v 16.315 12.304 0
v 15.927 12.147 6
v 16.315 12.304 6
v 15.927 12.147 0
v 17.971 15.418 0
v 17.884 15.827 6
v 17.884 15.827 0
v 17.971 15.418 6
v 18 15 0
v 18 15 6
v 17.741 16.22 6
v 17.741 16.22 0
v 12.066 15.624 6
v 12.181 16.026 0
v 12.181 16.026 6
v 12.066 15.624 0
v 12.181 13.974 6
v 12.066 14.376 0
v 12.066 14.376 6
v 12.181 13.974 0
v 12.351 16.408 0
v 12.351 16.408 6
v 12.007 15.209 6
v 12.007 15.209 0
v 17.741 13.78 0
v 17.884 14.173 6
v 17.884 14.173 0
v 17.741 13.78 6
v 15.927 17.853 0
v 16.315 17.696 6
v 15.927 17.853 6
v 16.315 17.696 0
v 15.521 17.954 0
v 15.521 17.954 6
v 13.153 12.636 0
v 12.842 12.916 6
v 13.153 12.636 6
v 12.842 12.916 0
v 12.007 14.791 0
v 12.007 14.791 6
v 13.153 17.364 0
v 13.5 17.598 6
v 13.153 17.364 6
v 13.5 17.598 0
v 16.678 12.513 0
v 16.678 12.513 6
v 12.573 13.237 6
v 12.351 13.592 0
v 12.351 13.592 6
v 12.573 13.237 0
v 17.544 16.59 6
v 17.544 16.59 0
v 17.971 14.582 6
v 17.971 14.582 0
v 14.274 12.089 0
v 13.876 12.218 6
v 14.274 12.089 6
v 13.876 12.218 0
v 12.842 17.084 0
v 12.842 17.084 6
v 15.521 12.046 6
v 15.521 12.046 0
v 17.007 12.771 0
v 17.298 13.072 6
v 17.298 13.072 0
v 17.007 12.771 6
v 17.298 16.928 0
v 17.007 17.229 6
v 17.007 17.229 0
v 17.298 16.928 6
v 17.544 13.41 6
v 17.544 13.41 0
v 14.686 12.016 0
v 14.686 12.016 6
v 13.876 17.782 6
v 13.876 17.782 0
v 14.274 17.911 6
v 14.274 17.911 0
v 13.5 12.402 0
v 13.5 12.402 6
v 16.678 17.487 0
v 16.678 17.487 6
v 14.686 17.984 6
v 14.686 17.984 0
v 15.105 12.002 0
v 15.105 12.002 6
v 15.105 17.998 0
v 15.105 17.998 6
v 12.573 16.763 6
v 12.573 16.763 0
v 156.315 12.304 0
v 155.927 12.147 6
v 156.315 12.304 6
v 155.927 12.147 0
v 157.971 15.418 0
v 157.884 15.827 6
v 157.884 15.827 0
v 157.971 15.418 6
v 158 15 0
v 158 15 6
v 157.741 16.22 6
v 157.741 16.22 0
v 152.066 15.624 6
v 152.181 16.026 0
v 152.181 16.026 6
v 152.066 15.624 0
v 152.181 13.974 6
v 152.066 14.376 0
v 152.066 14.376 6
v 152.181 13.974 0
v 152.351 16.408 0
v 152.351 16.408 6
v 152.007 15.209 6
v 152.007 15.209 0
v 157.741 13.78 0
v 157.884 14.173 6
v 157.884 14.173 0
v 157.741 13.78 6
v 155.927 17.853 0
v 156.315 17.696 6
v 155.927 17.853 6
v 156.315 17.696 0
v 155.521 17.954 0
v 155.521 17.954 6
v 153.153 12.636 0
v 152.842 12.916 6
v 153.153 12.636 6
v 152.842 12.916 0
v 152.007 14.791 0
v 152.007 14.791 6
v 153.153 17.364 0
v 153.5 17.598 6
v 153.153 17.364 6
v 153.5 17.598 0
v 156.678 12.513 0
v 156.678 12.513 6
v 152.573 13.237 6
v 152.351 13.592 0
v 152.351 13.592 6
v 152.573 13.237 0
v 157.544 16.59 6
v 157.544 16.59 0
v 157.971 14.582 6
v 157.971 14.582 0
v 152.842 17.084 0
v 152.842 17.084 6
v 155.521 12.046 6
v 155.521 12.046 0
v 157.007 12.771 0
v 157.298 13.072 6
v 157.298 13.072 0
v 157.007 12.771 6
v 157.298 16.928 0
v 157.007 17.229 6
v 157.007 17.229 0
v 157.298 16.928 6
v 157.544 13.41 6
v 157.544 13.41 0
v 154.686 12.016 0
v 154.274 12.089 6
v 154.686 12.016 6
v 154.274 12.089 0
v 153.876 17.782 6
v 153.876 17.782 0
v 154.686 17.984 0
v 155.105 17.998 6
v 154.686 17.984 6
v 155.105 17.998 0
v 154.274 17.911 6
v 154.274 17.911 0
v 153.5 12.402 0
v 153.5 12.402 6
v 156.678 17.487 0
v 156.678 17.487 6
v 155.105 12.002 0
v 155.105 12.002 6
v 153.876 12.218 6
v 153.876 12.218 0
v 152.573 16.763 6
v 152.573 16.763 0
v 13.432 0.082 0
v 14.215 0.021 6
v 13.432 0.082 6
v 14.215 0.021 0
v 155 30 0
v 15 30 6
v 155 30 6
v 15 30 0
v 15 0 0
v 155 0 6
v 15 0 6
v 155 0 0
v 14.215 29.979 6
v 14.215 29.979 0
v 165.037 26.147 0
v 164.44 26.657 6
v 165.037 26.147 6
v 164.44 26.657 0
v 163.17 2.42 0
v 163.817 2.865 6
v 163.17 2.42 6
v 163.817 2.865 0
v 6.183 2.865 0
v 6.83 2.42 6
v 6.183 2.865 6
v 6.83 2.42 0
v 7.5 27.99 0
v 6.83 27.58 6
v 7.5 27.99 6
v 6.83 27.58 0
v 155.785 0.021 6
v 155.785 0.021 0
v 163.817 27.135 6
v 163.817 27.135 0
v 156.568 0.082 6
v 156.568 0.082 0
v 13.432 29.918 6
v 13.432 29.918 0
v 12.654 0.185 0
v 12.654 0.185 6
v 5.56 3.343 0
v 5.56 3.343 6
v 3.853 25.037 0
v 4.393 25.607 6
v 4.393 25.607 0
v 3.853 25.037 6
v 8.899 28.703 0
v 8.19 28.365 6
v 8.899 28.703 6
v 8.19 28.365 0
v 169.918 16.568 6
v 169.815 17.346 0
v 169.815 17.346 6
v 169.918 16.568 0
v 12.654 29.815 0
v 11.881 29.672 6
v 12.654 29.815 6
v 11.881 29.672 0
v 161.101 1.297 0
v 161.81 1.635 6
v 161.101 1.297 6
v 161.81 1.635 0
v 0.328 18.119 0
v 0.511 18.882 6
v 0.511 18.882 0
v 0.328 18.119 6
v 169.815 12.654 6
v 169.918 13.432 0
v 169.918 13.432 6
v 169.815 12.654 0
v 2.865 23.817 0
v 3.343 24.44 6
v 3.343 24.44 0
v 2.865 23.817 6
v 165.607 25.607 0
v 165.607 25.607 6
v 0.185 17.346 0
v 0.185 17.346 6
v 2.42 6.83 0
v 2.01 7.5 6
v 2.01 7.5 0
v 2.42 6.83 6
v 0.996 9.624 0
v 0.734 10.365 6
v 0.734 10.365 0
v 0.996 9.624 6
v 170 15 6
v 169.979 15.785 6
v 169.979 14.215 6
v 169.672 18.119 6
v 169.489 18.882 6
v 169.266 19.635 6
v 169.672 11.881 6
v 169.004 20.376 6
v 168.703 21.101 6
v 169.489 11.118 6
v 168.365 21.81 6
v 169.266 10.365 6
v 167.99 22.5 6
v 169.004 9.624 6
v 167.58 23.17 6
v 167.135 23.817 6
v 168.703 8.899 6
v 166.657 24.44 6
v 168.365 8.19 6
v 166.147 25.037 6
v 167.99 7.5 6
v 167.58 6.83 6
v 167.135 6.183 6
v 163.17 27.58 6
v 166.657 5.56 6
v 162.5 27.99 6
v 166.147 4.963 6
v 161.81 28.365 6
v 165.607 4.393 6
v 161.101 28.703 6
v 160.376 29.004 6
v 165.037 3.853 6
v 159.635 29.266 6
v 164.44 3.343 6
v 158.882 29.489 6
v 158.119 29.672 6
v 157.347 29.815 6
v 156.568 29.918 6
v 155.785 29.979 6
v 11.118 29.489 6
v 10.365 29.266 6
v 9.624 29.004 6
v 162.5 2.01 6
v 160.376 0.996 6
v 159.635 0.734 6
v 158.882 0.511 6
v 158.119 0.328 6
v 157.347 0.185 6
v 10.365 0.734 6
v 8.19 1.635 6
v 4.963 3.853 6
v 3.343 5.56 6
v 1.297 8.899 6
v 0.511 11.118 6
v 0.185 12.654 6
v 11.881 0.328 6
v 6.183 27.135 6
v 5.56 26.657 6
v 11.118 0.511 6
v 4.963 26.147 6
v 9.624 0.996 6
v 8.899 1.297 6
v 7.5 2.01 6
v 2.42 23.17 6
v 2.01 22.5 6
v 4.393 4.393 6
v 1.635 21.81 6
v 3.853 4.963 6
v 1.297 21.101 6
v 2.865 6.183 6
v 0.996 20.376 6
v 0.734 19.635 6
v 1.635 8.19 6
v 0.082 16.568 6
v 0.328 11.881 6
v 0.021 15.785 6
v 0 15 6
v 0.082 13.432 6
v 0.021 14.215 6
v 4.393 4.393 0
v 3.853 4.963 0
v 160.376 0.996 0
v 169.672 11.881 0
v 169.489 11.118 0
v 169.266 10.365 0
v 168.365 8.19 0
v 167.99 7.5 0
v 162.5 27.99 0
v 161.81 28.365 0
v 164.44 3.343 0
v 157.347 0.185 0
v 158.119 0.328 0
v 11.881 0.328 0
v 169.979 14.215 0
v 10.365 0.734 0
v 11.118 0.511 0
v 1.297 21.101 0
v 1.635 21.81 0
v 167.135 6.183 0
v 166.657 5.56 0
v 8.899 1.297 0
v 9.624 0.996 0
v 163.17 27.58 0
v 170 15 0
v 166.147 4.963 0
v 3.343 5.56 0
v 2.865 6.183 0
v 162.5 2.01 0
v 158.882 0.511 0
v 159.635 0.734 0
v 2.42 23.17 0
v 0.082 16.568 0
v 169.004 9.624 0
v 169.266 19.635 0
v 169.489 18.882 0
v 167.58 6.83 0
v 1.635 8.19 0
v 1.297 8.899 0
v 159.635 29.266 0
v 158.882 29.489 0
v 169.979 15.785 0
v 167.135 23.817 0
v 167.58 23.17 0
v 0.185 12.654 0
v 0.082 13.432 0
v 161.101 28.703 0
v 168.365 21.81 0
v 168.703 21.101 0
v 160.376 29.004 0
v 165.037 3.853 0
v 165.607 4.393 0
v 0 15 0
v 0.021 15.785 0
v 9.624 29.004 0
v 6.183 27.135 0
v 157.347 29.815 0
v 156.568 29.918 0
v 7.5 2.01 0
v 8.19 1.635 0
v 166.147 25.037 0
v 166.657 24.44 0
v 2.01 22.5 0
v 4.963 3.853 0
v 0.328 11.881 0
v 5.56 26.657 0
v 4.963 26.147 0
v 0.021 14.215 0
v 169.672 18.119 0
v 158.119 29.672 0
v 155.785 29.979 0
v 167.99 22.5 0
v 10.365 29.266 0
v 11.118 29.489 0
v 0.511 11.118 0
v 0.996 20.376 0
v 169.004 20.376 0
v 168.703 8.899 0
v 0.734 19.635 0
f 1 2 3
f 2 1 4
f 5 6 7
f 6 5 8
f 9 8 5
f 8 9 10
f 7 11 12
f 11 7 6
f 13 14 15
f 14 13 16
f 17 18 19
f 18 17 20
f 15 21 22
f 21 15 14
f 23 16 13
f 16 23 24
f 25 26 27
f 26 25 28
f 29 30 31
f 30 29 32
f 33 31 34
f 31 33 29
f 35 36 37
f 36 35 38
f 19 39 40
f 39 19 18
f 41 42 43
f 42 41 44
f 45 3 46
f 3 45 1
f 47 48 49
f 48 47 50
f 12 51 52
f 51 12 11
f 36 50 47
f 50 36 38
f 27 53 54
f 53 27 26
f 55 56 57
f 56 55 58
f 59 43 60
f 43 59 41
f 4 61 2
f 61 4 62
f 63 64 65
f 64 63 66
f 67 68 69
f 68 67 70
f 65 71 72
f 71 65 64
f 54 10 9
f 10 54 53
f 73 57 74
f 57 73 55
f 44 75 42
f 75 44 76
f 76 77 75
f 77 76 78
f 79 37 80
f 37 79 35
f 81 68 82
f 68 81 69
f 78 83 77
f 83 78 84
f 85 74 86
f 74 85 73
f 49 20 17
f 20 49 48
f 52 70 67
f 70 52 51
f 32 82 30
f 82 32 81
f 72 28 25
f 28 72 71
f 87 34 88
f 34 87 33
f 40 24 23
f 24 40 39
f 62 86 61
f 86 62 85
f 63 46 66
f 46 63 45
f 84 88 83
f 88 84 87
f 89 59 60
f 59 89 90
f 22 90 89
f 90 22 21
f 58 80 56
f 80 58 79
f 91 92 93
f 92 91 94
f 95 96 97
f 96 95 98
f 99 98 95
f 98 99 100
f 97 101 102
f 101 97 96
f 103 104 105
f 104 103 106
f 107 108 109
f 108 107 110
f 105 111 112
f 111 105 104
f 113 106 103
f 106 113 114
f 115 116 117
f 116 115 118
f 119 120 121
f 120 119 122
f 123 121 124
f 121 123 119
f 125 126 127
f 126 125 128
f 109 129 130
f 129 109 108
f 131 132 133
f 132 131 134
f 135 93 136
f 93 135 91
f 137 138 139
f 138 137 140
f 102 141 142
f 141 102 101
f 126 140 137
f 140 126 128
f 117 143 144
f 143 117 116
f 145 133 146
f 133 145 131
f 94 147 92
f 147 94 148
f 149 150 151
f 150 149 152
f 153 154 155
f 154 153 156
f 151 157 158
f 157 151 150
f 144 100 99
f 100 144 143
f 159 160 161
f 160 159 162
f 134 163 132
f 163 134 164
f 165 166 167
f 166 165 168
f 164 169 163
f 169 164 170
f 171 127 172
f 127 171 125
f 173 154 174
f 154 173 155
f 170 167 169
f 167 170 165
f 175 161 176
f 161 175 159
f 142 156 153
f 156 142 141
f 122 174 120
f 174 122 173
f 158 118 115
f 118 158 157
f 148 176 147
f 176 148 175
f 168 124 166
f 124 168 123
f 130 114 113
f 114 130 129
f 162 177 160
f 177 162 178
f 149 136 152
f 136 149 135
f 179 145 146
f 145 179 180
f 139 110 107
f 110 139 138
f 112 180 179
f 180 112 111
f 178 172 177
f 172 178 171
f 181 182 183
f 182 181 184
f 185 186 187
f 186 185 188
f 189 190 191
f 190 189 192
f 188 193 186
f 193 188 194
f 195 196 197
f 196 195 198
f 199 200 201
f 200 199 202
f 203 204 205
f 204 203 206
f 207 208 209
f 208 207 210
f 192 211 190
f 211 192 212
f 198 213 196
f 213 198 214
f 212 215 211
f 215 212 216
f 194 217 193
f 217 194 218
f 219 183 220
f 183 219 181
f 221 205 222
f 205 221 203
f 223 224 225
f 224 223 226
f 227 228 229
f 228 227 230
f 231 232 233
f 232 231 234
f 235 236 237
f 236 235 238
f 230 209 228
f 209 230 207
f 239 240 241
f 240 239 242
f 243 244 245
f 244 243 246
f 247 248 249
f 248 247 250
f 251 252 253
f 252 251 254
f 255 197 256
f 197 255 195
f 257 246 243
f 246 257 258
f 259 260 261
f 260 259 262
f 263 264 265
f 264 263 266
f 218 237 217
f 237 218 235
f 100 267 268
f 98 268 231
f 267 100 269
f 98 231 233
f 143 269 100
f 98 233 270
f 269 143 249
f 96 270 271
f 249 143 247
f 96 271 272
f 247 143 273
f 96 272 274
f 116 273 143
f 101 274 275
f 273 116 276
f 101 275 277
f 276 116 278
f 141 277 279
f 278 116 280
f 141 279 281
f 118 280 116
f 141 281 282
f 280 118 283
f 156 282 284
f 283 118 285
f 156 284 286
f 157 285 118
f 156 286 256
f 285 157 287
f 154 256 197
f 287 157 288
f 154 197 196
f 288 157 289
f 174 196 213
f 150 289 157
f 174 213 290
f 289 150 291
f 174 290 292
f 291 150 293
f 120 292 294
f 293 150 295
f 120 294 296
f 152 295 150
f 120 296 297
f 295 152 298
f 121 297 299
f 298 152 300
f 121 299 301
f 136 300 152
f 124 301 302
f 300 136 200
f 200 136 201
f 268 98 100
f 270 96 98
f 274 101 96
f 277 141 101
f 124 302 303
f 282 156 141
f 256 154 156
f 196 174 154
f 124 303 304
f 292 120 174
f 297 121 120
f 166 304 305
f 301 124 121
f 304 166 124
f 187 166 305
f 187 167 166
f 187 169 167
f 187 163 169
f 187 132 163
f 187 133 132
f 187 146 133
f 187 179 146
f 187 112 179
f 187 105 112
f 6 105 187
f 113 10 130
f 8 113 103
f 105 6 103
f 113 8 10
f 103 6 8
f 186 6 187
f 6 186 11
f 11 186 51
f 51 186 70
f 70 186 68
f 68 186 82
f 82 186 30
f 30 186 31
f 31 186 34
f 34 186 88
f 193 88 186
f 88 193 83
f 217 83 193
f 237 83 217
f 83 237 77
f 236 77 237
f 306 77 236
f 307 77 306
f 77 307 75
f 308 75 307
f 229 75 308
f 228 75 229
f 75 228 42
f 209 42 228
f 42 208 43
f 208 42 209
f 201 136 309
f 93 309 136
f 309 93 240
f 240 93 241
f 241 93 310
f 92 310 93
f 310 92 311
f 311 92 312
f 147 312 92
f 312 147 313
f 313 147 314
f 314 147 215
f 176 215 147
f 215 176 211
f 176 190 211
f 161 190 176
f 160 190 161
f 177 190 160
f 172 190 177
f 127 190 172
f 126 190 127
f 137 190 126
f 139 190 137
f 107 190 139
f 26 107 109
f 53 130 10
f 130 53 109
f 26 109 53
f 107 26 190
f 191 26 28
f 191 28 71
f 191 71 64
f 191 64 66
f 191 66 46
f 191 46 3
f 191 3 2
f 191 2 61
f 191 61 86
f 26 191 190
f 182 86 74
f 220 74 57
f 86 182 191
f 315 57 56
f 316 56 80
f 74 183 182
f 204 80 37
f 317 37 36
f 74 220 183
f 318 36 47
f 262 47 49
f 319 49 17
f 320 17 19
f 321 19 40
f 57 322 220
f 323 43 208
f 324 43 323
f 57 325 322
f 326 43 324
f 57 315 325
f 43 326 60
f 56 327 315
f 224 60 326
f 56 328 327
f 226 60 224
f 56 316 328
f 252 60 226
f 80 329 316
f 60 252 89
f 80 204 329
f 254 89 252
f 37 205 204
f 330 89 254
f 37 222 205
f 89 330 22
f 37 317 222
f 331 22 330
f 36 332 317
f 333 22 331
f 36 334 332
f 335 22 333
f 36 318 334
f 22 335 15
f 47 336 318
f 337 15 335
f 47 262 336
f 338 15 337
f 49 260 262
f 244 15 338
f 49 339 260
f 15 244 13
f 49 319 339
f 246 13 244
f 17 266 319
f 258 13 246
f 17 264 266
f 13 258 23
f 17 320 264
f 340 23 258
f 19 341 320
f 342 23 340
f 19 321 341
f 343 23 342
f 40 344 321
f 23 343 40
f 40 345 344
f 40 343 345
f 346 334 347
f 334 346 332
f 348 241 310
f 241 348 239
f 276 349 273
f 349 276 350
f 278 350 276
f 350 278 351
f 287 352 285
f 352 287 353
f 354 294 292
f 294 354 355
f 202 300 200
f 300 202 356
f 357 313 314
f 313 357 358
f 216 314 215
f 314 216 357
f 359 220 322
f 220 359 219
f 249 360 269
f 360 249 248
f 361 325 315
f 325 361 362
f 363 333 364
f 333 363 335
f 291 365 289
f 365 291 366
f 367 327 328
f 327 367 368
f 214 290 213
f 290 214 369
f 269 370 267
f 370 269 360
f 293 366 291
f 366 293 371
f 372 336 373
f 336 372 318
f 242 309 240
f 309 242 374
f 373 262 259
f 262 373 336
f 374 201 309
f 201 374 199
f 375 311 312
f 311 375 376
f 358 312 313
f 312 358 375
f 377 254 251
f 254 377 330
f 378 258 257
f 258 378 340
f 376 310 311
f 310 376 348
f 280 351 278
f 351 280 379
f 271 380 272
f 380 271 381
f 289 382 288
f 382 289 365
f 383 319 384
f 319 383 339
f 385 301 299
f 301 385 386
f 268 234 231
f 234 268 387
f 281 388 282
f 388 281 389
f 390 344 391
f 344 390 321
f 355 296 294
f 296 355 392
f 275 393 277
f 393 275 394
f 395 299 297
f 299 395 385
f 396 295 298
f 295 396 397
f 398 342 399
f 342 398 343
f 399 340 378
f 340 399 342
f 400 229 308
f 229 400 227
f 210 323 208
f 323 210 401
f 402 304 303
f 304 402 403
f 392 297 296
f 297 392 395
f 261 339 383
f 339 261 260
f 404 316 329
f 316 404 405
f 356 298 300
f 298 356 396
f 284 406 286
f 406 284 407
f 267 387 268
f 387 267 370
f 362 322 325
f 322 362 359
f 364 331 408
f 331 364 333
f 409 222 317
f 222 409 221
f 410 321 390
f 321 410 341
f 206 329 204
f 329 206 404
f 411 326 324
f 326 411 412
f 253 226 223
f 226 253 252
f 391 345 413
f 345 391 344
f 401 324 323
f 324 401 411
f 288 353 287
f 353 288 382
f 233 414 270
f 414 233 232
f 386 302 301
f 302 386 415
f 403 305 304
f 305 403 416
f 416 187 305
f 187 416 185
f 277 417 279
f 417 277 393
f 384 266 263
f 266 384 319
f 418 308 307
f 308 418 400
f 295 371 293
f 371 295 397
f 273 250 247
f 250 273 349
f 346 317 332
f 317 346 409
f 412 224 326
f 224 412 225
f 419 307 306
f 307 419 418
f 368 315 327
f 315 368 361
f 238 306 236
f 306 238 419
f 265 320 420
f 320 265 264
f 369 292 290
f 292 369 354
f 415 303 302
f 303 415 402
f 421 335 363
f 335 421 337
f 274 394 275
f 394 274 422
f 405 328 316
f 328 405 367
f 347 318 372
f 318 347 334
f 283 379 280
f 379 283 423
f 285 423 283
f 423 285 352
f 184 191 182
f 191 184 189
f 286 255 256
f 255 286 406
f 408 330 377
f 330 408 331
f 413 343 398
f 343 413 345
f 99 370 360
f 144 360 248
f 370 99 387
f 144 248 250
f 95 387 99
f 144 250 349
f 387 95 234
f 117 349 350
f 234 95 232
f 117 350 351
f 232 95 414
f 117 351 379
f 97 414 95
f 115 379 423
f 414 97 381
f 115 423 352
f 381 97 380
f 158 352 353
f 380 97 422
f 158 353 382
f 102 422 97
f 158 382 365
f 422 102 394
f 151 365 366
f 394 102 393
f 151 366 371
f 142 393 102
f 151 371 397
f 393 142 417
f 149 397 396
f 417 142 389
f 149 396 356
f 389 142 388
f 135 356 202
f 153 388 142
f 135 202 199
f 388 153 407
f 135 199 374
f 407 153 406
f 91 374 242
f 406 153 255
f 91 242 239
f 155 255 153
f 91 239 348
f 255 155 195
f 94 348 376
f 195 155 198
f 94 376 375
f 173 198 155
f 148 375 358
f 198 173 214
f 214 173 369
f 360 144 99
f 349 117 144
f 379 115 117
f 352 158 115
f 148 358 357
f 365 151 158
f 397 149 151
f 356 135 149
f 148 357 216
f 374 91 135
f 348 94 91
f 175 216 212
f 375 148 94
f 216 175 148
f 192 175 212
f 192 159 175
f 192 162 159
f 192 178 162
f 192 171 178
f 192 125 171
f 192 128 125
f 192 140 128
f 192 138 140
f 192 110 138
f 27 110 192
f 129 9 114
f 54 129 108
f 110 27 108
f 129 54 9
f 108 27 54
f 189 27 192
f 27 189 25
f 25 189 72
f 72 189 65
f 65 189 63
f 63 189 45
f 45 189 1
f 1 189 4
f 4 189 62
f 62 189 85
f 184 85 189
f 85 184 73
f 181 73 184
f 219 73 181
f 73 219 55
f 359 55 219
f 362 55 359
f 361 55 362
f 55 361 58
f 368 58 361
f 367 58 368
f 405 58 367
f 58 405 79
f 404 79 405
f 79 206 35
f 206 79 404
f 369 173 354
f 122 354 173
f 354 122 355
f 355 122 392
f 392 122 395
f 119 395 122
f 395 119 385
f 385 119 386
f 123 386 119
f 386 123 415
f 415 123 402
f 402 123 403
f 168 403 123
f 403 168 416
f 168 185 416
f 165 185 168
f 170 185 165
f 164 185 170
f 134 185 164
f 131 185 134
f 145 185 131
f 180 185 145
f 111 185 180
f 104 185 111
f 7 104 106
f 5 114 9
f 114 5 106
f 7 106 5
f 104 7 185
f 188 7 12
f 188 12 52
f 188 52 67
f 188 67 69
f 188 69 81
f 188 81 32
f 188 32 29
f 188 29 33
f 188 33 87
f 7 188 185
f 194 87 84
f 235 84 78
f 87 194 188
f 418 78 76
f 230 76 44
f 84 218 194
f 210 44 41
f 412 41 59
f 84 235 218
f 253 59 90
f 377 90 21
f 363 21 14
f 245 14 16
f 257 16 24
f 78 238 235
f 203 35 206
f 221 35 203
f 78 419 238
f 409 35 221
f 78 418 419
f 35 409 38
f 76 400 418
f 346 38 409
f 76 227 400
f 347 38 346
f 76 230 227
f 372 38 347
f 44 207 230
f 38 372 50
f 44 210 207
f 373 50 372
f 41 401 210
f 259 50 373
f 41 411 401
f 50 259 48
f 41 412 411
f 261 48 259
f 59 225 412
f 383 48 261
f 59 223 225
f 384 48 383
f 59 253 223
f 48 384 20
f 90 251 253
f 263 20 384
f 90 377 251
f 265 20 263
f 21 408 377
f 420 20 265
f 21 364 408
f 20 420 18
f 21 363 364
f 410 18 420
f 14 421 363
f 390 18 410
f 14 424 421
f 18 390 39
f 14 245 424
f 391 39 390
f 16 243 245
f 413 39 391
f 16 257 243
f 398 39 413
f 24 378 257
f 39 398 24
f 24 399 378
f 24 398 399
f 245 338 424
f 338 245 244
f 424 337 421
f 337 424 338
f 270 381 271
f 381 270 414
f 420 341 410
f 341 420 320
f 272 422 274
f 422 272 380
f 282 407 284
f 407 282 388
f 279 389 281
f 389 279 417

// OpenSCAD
// file: screw-hole.scad
// Generic screw holder

// Copyright (C) 2021 Jeremy Bennett <jeremy@jeremybennett.com>

// Contributor Jeremy Bennett <jeremy@jeremybennett.com>

// SPDX-License-Identifier: CC-BY-SA-4.0


// The countersink height is calculated as:
//
//      x - y
//    ----------
//    2 tan(B/2)
//
// where x is the head diameter, y is the shank diameter and B is the head
// angle (100 degrees for DIN 7997x I believe).
//
// Table of 2 tan(B/2) for various B
//
//  60    1.1547
//  82    1.7386
//  90    2.0000
// 100    2.3835
// 110    2.8563

// Small amount
CS_EPS = 0.1;

// Height of rim above countersink
CS_RIM_HEIGHT = 0.3;

// Screw height - effectively infinite!
SCREW_HEIGHT = 100;

// Table of screw dimensions for DIN 7997z countersunk wood screws
// Entry is thread diameter, head diameter, head height.
SCREW_TAB = [ [2.5,  4.7, 1.50],
	      [3.0,  5.6, 1.65],
	      [3.5,  6.5, 1.93],
	      [4.0,  7.5, 2.20],
	      [4.5,  8.3, 2.35],
	      [5.0,  9.2, 2.50],
	      [5.5, 10.2, 2.75],
	      [6.0, 11.0, 3.00],
              [0.0,  0.0, 0.00] ];		// End marker

// Recursively look up dimensions in the SCREW_TAB
function recursive_screw_dims (diam, n) =
     ( (SCREW_TAB[n][0] == 0.0) ? SCREW_TAB[n] :
       (SCREW_TAB[n][0] == diam) ? SCREW_TAB[n] :
       recursive_screw_dims (diam, n + 1) );

// Look up a screw's dimensions
function screw_dims (diam = 4.0) = recursive_screw_dims (diam, 0);

// Hole for a countersink screw
module screw_hole (shank_diam, invert = true) {
     let (dims = screw_dims (shank_diam),
	  head_diam = dims[1],
	  cs_height = dims[2],
	  screw_angle = invert ? 180 : 0) {
	  rotate (a = [0, screw_angle, 0]) {
	       cylinder(r = head_diam / 2, h = CS_RIM_HEIGHT + CS_EPS,
			center = false, $fn = 45);
	       translate(v = [0, 0, CS_RIM_HEIGHT])
	            cylinder(r1 = head_diam / 2, r2 = shank_diam / 2,
			     h = cs_height, center = false, $fn = 45);
	       cylinder(r = shank_diam / 2, h = SCREW_HEIGHT, center = false,
			$fn = 45);
	  }
     }
}
// main file
// Strut
//
// Copyright (C) 2021 Jeremy Bennett <jeremy@jeremybennett.com>
// Contributor Jeremy Bennett <jeremy@jeremybennett.com>
//
// This is part of the open source laptop stand
//
// SPDX-License-Identifier: CC-BY-SA-4.0

// Struts connecting base board to backboard

include <screw-hole.scad>

EPS = 0.01;
D = 6.0;
L = 170.0;
W = 30.0;

difference () {
     // The strut
     hull () {
	  for (xoff = [W / 2, L - W / 2])
	       translate (v = [xoff, W / 2, 0])
		    cylinder (r = W / 2, h = D, center = false, $fn = 120);
     }
     // holes
     for (xoff = [W /2, L - W/2])
	  translate (v = [xoff, W / 2, 0])
	       cylinder (r = 3.0, h = D * 4, center = true, $fn = 45);
}
